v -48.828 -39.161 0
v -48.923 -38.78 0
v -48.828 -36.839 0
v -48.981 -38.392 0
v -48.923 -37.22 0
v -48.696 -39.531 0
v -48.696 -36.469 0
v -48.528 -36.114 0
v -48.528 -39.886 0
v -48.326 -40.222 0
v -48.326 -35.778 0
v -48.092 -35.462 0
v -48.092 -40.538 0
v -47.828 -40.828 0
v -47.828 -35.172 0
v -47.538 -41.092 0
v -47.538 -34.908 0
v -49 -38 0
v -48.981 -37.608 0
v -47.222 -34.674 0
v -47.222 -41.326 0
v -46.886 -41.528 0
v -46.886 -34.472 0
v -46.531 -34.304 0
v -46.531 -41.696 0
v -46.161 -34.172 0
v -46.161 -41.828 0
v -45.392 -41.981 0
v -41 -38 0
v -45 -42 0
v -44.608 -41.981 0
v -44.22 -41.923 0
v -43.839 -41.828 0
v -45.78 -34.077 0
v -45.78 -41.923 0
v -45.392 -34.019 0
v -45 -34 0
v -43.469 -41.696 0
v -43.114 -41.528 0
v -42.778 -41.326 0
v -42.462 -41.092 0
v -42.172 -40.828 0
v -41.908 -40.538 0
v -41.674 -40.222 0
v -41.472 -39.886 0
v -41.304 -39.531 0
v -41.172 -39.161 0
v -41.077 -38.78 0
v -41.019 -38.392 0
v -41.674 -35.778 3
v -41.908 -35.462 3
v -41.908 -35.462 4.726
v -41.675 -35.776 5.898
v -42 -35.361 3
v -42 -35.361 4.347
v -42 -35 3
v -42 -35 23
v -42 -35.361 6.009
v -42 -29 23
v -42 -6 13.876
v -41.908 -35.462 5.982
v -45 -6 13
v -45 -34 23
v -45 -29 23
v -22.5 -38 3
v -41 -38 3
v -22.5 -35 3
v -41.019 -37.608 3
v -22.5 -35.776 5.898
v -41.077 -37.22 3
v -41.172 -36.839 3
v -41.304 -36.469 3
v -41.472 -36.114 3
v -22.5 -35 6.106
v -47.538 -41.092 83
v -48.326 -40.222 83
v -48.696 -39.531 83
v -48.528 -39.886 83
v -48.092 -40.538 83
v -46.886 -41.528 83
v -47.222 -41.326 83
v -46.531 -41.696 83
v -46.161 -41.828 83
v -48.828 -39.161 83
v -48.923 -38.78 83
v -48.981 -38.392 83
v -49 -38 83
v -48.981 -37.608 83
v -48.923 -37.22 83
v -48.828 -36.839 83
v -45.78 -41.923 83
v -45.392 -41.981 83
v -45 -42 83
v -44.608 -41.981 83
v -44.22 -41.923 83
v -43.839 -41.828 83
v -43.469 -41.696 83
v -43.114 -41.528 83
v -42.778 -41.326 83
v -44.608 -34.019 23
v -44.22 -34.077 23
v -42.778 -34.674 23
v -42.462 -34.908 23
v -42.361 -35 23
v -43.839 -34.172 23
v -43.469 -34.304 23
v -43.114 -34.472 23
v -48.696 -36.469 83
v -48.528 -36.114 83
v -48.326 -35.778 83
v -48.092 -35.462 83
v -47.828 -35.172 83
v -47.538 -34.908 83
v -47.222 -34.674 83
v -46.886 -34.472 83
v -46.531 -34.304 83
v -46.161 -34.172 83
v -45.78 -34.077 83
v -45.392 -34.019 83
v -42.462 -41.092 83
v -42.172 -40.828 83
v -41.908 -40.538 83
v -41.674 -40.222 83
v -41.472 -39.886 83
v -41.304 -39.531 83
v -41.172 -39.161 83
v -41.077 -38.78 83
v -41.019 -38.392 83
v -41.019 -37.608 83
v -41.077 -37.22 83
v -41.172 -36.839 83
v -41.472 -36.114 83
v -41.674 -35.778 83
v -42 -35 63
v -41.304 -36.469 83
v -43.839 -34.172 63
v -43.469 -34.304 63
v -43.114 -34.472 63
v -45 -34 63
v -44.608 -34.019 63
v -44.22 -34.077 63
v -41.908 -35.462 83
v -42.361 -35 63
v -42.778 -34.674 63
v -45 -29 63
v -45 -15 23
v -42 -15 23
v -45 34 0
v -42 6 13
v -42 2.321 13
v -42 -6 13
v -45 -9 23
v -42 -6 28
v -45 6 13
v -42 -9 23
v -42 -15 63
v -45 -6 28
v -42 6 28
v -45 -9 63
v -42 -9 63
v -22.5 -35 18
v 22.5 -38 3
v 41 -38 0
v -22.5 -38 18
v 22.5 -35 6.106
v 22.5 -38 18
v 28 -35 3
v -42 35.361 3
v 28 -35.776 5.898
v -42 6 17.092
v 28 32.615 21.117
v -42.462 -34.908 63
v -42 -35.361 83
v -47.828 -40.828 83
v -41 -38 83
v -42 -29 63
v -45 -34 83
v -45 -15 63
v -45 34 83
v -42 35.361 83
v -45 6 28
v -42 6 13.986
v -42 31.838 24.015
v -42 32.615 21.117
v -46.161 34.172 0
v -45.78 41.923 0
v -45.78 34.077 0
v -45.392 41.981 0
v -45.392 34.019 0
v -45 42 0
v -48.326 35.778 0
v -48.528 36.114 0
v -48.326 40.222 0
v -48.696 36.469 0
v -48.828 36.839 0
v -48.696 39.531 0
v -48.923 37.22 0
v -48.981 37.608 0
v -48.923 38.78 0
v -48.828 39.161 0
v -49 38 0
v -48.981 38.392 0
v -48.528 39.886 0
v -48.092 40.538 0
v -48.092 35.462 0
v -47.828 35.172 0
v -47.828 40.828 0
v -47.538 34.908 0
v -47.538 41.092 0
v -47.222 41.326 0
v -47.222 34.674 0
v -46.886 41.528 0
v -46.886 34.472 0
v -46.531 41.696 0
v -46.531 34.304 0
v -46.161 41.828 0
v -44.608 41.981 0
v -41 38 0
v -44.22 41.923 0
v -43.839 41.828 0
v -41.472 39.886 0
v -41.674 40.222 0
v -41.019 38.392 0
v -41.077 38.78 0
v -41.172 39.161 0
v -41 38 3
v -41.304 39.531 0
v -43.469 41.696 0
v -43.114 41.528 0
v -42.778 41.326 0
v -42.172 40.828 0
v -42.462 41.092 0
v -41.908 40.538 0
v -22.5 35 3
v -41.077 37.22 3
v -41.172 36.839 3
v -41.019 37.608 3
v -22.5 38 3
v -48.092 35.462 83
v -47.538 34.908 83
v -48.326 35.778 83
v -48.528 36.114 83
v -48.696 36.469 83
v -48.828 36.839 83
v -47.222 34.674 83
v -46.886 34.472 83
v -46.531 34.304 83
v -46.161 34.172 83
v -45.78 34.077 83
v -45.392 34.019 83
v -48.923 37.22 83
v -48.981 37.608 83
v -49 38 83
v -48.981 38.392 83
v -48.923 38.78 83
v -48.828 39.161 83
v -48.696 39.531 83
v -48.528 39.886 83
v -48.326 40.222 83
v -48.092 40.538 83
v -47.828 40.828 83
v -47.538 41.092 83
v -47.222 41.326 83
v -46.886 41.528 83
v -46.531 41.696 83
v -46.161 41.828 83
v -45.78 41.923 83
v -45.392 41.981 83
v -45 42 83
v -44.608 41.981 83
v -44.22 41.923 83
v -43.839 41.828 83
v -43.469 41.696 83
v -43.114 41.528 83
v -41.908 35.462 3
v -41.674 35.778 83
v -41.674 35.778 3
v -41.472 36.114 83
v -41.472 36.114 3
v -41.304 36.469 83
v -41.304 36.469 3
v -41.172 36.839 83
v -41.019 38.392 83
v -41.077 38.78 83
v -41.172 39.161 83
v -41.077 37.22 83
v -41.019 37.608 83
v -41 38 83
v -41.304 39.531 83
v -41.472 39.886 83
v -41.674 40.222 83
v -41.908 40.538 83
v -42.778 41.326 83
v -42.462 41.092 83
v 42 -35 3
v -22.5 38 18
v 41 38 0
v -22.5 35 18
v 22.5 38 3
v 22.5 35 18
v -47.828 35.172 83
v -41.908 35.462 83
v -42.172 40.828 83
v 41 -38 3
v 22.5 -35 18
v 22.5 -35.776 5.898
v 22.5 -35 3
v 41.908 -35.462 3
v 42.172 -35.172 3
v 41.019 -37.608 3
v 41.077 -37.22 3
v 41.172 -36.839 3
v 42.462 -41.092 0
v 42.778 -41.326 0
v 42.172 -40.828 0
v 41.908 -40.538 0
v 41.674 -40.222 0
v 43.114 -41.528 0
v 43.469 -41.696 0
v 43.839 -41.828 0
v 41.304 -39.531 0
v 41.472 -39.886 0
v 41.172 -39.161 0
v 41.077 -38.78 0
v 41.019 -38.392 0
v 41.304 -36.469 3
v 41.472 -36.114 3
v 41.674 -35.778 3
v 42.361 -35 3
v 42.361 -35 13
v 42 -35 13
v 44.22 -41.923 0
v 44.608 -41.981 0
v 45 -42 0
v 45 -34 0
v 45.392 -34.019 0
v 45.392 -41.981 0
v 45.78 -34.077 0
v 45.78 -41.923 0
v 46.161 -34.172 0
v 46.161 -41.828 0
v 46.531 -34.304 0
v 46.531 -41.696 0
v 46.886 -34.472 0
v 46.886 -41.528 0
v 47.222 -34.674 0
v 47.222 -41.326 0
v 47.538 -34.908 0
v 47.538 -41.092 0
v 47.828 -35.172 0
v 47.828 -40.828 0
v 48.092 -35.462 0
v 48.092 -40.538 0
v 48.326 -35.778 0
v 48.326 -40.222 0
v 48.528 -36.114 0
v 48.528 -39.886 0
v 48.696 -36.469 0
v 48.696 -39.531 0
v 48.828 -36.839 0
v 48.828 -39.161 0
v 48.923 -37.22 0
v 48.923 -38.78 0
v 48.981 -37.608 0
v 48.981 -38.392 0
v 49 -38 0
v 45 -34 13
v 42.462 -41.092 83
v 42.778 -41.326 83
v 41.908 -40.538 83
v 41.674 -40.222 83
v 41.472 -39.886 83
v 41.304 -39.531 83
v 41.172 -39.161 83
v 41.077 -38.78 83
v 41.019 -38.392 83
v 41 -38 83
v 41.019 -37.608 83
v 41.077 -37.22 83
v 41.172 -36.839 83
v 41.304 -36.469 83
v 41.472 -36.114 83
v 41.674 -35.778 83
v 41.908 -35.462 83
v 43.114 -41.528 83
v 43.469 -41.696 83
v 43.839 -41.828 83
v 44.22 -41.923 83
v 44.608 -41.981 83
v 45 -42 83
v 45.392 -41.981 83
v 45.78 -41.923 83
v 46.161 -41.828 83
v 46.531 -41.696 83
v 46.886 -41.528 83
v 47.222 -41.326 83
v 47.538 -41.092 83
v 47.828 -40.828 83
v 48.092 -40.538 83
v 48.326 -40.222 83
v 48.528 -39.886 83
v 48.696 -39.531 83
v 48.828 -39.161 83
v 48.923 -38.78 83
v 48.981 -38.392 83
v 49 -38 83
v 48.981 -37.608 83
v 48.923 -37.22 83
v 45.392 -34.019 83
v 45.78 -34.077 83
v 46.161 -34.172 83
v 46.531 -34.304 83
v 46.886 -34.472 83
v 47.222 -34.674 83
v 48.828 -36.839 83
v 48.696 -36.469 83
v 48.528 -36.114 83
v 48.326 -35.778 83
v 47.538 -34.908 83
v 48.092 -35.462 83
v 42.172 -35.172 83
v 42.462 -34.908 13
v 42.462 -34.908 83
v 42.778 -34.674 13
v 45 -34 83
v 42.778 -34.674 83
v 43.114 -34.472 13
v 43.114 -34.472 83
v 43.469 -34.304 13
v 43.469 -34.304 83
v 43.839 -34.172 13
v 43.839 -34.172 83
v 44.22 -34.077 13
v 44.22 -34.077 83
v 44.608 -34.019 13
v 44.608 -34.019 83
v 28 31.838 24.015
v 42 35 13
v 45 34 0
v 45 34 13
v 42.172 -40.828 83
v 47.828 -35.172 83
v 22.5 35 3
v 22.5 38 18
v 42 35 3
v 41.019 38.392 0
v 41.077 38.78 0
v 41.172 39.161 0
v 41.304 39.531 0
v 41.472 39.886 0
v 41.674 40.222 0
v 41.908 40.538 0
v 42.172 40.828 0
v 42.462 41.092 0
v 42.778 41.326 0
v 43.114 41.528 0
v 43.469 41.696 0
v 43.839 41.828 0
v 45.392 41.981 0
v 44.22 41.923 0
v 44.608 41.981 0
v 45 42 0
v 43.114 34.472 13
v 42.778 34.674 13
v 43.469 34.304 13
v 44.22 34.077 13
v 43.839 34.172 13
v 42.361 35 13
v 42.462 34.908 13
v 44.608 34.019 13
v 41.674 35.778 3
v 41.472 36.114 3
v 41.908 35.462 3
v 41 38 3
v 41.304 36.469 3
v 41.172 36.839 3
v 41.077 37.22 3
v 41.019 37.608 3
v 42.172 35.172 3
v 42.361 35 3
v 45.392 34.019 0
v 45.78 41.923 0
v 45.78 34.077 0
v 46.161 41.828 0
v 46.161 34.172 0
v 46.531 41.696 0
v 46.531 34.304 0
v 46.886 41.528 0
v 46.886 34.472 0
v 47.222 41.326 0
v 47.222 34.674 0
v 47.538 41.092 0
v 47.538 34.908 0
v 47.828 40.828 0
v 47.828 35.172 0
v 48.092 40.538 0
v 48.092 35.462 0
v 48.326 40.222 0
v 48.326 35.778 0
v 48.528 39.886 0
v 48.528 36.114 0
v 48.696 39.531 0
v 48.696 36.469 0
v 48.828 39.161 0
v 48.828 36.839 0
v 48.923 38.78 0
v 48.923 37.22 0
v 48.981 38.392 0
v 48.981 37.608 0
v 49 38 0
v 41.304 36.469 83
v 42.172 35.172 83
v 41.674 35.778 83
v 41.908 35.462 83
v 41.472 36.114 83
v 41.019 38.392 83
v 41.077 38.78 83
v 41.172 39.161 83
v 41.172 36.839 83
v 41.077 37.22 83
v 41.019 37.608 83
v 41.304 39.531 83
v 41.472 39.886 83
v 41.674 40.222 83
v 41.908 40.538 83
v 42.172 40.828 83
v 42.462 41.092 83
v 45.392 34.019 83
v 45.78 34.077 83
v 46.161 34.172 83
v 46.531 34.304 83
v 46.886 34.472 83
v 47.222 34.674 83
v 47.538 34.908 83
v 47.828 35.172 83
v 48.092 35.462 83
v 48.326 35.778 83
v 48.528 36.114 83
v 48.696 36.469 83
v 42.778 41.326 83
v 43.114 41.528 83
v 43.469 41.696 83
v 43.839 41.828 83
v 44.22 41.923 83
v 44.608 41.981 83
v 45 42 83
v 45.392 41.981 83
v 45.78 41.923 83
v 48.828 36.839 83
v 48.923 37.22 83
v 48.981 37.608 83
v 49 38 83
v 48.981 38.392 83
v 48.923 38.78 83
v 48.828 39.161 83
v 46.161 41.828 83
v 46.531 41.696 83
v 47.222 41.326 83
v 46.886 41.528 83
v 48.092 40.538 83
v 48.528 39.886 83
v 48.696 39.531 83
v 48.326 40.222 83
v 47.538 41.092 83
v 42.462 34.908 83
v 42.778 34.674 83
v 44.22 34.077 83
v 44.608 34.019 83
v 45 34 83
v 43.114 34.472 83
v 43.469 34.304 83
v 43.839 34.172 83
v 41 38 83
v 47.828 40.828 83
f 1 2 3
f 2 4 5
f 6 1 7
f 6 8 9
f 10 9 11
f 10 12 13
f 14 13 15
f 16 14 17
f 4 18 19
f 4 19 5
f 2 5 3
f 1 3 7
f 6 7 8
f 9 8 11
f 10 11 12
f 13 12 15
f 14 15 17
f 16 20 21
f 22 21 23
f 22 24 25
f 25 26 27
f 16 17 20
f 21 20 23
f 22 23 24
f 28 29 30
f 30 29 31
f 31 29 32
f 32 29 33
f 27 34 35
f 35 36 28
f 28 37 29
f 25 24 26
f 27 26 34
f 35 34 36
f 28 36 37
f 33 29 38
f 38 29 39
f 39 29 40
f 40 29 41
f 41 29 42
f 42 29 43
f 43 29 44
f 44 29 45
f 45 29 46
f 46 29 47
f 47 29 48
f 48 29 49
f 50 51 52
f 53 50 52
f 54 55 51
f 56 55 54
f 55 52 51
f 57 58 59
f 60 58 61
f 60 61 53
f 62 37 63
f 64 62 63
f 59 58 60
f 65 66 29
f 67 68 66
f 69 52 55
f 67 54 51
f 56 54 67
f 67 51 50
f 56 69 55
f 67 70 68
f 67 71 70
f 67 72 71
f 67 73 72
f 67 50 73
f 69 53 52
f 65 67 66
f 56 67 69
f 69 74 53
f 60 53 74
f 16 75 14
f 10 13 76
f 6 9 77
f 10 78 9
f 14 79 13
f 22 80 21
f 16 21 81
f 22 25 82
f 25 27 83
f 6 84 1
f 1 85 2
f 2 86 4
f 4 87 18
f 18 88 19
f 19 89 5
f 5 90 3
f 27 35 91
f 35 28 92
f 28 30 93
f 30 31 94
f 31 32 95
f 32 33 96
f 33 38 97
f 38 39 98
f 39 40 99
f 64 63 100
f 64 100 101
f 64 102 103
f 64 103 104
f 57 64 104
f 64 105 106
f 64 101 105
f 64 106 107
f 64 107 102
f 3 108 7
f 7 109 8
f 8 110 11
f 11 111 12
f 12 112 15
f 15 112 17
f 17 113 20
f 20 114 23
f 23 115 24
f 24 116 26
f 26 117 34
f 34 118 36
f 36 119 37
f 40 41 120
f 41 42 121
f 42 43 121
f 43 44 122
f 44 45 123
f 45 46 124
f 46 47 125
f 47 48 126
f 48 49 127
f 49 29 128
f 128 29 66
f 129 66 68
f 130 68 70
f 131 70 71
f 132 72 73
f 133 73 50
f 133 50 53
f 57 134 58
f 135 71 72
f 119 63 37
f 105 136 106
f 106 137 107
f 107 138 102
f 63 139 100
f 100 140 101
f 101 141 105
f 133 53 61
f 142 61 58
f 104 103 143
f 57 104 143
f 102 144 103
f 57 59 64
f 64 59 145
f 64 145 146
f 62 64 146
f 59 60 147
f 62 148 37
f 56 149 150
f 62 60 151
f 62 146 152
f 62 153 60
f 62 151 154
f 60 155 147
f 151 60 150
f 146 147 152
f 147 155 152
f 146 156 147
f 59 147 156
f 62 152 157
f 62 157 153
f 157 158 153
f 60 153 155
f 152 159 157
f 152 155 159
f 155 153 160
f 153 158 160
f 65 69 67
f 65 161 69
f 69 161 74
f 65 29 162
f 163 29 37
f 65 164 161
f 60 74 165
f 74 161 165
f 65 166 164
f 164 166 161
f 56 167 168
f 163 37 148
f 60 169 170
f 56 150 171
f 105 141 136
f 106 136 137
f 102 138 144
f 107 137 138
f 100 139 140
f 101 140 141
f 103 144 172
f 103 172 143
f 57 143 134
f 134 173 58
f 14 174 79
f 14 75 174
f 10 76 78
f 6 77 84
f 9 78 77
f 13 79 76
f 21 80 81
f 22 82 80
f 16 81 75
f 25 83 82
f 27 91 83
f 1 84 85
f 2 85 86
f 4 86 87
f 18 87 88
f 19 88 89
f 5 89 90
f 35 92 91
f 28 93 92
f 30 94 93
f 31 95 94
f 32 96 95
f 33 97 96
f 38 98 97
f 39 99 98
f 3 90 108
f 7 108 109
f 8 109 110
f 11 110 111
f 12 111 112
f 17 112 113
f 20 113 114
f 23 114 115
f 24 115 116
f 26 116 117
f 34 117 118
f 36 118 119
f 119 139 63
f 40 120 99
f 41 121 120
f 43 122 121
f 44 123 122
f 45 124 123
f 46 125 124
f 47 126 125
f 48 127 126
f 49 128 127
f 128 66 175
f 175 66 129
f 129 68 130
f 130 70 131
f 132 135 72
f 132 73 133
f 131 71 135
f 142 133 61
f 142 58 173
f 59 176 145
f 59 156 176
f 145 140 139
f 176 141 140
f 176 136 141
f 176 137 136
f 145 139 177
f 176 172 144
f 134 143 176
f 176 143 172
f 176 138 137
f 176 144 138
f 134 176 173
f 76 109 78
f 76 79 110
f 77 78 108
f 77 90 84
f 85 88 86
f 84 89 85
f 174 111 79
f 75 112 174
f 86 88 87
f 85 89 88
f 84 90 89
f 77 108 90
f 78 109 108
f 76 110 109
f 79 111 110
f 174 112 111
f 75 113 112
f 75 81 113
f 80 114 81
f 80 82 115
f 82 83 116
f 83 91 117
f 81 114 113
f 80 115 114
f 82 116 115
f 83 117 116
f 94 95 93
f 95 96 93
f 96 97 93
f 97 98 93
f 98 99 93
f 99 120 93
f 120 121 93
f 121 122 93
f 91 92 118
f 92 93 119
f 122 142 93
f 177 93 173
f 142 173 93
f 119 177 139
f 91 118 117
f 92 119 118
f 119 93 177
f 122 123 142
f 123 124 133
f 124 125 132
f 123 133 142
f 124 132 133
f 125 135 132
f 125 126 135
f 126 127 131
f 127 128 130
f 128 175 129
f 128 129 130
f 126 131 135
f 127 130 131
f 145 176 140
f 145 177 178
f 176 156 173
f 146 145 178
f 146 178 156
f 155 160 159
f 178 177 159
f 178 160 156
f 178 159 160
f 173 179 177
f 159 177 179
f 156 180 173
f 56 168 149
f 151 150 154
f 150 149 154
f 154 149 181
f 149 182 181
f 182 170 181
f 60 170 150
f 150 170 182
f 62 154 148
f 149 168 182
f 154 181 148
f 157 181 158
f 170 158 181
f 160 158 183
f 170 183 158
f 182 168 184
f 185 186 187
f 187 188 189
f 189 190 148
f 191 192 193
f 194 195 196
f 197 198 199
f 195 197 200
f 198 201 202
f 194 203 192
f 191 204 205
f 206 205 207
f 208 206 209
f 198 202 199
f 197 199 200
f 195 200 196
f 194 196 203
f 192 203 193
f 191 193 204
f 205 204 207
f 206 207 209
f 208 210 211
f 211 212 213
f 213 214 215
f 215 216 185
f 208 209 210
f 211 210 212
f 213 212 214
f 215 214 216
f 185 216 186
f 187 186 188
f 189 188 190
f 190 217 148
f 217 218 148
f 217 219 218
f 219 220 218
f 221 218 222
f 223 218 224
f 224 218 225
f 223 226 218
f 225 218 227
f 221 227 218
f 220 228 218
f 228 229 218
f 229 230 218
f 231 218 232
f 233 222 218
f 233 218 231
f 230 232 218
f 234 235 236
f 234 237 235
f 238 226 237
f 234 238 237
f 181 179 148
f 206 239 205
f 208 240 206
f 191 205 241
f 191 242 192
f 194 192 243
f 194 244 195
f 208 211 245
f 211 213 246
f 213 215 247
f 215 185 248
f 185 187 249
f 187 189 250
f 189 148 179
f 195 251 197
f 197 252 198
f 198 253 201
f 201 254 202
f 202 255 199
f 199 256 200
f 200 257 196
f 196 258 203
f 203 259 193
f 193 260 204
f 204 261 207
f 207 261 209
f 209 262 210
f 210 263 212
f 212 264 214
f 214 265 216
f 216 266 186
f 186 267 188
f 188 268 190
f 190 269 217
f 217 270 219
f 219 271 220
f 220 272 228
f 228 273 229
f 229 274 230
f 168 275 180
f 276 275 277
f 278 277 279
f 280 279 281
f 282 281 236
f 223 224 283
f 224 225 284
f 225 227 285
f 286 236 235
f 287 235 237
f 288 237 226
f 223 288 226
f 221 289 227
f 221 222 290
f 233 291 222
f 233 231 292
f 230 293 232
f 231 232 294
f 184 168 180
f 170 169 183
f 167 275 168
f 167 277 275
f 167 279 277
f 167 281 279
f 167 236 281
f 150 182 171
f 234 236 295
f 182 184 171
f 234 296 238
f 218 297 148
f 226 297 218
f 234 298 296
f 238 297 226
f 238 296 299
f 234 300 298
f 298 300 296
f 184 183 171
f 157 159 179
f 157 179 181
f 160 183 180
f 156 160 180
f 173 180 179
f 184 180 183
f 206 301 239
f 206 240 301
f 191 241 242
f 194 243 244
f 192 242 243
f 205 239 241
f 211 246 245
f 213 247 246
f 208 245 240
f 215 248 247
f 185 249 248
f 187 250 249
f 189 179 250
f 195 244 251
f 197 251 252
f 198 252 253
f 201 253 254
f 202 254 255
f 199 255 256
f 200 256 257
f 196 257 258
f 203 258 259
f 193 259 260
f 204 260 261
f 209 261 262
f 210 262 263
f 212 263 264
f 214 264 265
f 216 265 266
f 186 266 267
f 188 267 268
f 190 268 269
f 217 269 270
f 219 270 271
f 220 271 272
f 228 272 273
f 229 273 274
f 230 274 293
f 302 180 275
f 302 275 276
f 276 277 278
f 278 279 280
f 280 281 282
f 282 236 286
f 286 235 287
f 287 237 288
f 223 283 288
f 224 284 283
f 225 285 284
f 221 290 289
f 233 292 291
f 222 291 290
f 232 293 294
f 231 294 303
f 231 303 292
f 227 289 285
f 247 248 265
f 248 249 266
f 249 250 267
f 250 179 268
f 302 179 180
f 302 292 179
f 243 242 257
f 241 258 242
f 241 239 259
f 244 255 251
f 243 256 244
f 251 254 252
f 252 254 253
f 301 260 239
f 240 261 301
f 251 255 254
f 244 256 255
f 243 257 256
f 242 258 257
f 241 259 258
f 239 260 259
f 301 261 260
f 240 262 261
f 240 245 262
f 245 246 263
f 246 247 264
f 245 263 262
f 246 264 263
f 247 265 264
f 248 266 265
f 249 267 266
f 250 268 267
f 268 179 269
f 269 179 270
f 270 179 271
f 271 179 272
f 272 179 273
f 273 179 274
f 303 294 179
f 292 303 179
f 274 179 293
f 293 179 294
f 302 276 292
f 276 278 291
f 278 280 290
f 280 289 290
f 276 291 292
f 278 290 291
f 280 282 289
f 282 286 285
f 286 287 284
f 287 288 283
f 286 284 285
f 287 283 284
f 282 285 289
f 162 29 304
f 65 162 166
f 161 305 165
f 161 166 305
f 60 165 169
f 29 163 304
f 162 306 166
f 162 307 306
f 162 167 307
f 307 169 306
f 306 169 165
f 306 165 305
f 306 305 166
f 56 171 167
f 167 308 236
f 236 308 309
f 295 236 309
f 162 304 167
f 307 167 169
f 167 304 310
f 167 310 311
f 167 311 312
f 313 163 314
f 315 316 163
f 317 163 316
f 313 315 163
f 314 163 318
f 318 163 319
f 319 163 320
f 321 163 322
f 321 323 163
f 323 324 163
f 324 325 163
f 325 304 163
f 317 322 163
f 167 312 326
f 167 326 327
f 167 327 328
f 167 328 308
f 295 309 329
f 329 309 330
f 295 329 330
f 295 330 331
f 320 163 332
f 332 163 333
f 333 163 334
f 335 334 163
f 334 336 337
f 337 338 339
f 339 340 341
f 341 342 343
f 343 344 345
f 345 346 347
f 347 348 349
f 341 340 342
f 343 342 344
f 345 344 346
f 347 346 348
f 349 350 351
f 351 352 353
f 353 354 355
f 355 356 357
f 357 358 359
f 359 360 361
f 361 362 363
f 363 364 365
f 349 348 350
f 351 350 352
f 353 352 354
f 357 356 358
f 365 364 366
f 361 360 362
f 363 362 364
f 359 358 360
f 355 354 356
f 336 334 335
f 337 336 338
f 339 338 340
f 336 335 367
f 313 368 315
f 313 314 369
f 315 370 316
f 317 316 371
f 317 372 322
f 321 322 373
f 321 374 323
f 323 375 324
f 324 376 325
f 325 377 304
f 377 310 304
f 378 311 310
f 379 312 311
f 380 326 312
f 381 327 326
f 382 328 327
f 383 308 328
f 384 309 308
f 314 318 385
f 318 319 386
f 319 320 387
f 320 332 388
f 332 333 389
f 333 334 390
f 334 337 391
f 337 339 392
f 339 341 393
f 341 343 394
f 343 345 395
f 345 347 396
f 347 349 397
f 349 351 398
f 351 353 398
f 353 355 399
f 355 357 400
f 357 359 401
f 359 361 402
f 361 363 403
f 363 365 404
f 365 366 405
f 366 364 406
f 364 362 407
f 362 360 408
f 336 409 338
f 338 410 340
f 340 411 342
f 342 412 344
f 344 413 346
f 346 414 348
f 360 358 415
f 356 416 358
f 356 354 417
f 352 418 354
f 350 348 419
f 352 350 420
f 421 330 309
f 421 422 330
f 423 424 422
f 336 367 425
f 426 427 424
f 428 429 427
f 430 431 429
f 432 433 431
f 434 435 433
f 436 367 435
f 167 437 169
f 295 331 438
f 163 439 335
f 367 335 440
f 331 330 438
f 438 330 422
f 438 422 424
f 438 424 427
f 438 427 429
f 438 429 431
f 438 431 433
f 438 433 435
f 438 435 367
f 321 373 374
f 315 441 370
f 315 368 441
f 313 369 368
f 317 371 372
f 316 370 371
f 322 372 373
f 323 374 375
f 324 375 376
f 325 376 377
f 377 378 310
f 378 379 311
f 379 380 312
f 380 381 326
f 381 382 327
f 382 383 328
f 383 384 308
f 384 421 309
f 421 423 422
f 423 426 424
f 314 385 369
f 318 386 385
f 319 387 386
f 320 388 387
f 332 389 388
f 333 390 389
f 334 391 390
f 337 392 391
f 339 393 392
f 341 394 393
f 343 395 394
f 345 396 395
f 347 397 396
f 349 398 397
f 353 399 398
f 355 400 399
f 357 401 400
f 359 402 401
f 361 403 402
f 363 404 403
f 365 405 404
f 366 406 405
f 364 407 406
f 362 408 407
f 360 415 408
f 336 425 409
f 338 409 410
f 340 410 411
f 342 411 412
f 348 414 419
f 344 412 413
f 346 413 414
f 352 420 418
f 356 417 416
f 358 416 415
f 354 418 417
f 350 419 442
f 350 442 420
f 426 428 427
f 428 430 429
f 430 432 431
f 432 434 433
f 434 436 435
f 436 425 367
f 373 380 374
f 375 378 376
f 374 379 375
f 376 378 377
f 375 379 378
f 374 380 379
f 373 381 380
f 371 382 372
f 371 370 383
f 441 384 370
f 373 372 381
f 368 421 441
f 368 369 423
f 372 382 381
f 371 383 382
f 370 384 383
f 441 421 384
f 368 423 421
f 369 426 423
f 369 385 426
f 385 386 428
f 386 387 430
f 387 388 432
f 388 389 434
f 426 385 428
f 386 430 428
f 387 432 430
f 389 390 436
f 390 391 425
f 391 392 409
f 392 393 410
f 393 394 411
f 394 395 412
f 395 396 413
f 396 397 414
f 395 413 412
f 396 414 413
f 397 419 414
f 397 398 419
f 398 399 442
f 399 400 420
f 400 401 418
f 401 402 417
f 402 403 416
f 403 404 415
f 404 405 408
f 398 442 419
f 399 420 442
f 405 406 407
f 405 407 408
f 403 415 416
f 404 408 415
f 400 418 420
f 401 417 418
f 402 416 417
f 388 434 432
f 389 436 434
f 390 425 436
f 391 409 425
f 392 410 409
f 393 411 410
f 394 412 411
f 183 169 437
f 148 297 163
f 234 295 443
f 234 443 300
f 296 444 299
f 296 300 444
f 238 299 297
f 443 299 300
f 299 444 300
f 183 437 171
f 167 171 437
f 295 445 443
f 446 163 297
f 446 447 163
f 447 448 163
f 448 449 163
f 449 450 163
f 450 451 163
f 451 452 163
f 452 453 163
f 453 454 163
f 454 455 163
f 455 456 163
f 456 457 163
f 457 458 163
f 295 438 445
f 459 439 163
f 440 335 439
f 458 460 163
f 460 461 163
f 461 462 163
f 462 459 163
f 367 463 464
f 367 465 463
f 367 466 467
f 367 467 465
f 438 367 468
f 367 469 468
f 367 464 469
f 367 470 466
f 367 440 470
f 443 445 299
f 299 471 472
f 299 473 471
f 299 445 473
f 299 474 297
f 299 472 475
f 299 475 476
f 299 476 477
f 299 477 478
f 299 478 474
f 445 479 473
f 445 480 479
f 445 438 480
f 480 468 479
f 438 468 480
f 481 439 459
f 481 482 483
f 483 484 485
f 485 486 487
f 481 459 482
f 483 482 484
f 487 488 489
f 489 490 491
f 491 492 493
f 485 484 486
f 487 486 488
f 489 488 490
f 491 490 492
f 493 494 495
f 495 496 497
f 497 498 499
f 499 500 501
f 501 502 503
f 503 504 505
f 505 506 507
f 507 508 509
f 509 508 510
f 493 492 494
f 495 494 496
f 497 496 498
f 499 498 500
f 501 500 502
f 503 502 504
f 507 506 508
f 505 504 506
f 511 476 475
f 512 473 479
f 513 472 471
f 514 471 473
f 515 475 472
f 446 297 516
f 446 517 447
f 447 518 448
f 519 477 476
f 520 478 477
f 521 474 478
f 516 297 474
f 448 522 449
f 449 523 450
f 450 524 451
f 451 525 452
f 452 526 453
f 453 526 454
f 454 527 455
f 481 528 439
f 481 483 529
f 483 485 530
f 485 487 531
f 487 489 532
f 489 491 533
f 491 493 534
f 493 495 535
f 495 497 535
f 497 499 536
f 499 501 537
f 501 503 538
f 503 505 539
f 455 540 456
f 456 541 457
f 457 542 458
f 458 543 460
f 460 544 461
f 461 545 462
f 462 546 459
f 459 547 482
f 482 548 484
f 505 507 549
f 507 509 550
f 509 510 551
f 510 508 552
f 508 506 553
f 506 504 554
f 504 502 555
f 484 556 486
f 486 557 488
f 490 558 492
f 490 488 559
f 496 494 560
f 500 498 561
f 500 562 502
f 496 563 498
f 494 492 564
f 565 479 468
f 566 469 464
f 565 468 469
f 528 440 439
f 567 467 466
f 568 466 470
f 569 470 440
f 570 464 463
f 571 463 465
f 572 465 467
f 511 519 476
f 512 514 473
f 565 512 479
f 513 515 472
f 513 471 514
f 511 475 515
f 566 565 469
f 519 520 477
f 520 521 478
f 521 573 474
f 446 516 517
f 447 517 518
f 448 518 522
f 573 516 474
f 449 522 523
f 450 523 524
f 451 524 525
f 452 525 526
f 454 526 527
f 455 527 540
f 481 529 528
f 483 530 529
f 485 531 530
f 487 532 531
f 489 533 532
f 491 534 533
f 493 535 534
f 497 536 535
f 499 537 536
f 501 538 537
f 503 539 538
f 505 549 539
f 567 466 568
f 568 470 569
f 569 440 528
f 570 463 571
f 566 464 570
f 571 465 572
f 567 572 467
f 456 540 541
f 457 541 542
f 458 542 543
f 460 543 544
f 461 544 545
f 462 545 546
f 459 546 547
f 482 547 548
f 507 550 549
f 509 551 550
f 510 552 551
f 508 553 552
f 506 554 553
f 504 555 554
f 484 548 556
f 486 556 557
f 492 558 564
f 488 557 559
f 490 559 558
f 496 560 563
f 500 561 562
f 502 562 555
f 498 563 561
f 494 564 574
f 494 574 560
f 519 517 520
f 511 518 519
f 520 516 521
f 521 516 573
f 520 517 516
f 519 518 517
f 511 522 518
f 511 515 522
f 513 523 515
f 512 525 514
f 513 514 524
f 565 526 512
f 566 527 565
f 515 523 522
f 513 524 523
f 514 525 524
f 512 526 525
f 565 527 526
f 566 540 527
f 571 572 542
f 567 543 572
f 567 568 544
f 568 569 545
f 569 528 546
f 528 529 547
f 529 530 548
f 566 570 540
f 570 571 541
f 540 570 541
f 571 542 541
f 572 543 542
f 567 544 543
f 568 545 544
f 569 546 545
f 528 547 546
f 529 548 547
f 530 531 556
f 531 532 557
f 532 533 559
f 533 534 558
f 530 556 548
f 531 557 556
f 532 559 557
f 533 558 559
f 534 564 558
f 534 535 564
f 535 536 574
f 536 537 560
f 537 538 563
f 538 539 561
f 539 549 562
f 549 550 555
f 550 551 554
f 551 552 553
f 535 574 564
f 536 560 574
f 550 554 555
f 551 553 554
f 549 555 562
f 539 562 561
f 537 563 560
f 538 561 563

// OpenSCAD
// Phone stand parameters
/* [Stand Dimensions] */
// Width of the phone (inner cradle width)
phone_width = 70;            // [60:1:90]
// Thickness allowance for phone depth
phone_thickness_allowance = 12; // [8:1:20]
// Overall stand depth
stand_depth = 90;            // [70:1:140]
// Overall stand height
stand_height = 80;           // [60:1:140]
// Tilt angle of the phone support surface
support_tilt_angle = 15;     // [5:1:40]
// Thickness of main walls
wall_thickness = 3;          // [3:0.5:8]
// Lip height at bottom front to catch phone
front_lip_height = 10;       // [5:1:20]
// Cable slot width at the rear
cable_slot_width = 12;       // [8:1:25]
// Cable slot height
cable_slot_height = 15;      // [10:1:25]
// Cable slot offset from base
cable_slot_bottom_offset = 10; // [5:1:30]
// Vent slot width
vent_slot_width = 6;         // [4:1:10]
// Vent slot height
vent_slot_height = 40;       // [25:1:60]
// Vent slot spacing (center-to-center)
vent_slot_spacing = 14;      // [10:1:20]
// Corner round radius
corner_radius = 4;           // [2:1:8]

/* [Appearance] */
stand_color = "LightSlateGray";

$fn = 64;

include <BOSL2/std.scad>;
include <BOSL2/rounding.scad>;

module phone_stand() {
    color(stand_color)
    rounded_phone_stand();
}

// Main stand with manually rounded outer vertical edges
module rounded_phone_stand() {
    // We will fillet vertical outer edges by placing cylinders at corners and hull with main bodies.
    union() {
        // Core geometry without rounding
        raw_stand();
        
        // Add vertical fillets at four outer base corners
        vertical_corner_fillets();
    }
}

// Raw stand geometry before corner rounding
module raw_stand() {
    union() {
        base_plate();
        back_support();
        front_lip();
        side_rails();
    }
}

module base_plate() {
    // Simple rectangular base
    translate([-stand_depth/2, -phone_width/2 - wall_thickness, 0])
    cube([stand_depth, phone_width + 2*wall_thickness, wall_thickness]);
}

module back_support() {
    // Back support is a vertical plate with ventilation slots and cable slot
    support_height = stand_height;
    support_thickness = wall_thickness;

    // Upright back wall anchored at rear of base
    translate([-stand_depth/2, -phone_width/2 - wall_thickness, wall_thickness])
    difference() {
        cube([wall_thickness, phone_width + 2*wall_thickness, support_height]);
        
        // Cable slot at rear center
        translate([0,
                   (phone_width + 2*wall_thickness - cable_slot_width)/2,
                   cable_slot_bottom_offset])
        cube([wall_thickness+0.1, cable_slot_width, cable_slot_height]);
        
        // Ventilation slots: three vertical slots spaced horizontally
        vent_total_width = (3*vent_slot_width) + (2*vent_slot_spacing);
        vent_start_y = -vent_total_width/2 + vent_slot_width/2 + wall_thickness;
        vent_start_z = stand_height/2 - vent_slot_height/2;
        
        for(i = [0:2]) {
            translate([0,
                       vent_start_y + i*(vent_slot_width + vent_slot_spacing),
                       vent_start_z])
            cube([wall_thickness+0.1, vent_slot_width, vent_slot_height]);
        }
    }

    // Tilted support surface that phone rests against
    support_plate_height = stand_height - front_lip_height;
    support_plate_width = phone_width;
    support_plate_length = stand_depth - 20; // leave space at front

    translate([-stand_depth/2 + wall_thickness,
               -support_plate_width/2,
               wall_thickness])
    rotate([support_tilt_angle, 0, 0])
    cube([support_plate_length, support_plate_width, support_thickness]);
}

module front_lip() {
    // Small lip at the front edge to stop phone sliding
    lip_thickness = wall_thickness;

    translate([stand_depth/2 - lip_thickness,
               -phone_width/2,
               wall_thickness])
    cube([lip_thickness, phone_width, front_lip_height]);
}

module side_rails() {
    // Two small rails along sides to help centering and retention
    rail_thickness = wall_thickness;
    rail_height = 15;
    rail_length = stand_depth/2; // front half

    // Left rail
    translate([-rail_length/2,
               -phone_width/2 - rail_thickness,
               wall_thickness])
    cube([rail_length, rail_thickness, rail_height]);

    // Right rail
    translate([-rail_length/2,
               phone_width/2,
               wall_thickness])
    cube([rail_length, rail_thickness, rail_height]);
}

// Simple vertical fillets at base corners
module vertical_corner_fillets() {
    // Back left corner
    translate([-stand_depth/2, -phone_width/2 - wall_thickness, 0])
    cylinder(h=stand_height + wall_thickness, r=corner_radius);
    
    // Back right corner
    translate([-stand_depth/2, phone_width/2 + wall_thickness, 0])
    cylinder(h=stand_height + wall_thickness, r=corner_radius);
    
    // Front left corner
    translate([stand_depth/2, -phone_width/2 - wall_thickness, 0])
    cylinder(h=stand_height + wall_thickness, r=corner_radius);
    
    // Front right corner
    translate([stand_depth/2, phone_width/2 + wall_thickness, 0])
    cylinder(h=stand_height + wall_thickness, r=corner_radius);
}

phone_stand();
